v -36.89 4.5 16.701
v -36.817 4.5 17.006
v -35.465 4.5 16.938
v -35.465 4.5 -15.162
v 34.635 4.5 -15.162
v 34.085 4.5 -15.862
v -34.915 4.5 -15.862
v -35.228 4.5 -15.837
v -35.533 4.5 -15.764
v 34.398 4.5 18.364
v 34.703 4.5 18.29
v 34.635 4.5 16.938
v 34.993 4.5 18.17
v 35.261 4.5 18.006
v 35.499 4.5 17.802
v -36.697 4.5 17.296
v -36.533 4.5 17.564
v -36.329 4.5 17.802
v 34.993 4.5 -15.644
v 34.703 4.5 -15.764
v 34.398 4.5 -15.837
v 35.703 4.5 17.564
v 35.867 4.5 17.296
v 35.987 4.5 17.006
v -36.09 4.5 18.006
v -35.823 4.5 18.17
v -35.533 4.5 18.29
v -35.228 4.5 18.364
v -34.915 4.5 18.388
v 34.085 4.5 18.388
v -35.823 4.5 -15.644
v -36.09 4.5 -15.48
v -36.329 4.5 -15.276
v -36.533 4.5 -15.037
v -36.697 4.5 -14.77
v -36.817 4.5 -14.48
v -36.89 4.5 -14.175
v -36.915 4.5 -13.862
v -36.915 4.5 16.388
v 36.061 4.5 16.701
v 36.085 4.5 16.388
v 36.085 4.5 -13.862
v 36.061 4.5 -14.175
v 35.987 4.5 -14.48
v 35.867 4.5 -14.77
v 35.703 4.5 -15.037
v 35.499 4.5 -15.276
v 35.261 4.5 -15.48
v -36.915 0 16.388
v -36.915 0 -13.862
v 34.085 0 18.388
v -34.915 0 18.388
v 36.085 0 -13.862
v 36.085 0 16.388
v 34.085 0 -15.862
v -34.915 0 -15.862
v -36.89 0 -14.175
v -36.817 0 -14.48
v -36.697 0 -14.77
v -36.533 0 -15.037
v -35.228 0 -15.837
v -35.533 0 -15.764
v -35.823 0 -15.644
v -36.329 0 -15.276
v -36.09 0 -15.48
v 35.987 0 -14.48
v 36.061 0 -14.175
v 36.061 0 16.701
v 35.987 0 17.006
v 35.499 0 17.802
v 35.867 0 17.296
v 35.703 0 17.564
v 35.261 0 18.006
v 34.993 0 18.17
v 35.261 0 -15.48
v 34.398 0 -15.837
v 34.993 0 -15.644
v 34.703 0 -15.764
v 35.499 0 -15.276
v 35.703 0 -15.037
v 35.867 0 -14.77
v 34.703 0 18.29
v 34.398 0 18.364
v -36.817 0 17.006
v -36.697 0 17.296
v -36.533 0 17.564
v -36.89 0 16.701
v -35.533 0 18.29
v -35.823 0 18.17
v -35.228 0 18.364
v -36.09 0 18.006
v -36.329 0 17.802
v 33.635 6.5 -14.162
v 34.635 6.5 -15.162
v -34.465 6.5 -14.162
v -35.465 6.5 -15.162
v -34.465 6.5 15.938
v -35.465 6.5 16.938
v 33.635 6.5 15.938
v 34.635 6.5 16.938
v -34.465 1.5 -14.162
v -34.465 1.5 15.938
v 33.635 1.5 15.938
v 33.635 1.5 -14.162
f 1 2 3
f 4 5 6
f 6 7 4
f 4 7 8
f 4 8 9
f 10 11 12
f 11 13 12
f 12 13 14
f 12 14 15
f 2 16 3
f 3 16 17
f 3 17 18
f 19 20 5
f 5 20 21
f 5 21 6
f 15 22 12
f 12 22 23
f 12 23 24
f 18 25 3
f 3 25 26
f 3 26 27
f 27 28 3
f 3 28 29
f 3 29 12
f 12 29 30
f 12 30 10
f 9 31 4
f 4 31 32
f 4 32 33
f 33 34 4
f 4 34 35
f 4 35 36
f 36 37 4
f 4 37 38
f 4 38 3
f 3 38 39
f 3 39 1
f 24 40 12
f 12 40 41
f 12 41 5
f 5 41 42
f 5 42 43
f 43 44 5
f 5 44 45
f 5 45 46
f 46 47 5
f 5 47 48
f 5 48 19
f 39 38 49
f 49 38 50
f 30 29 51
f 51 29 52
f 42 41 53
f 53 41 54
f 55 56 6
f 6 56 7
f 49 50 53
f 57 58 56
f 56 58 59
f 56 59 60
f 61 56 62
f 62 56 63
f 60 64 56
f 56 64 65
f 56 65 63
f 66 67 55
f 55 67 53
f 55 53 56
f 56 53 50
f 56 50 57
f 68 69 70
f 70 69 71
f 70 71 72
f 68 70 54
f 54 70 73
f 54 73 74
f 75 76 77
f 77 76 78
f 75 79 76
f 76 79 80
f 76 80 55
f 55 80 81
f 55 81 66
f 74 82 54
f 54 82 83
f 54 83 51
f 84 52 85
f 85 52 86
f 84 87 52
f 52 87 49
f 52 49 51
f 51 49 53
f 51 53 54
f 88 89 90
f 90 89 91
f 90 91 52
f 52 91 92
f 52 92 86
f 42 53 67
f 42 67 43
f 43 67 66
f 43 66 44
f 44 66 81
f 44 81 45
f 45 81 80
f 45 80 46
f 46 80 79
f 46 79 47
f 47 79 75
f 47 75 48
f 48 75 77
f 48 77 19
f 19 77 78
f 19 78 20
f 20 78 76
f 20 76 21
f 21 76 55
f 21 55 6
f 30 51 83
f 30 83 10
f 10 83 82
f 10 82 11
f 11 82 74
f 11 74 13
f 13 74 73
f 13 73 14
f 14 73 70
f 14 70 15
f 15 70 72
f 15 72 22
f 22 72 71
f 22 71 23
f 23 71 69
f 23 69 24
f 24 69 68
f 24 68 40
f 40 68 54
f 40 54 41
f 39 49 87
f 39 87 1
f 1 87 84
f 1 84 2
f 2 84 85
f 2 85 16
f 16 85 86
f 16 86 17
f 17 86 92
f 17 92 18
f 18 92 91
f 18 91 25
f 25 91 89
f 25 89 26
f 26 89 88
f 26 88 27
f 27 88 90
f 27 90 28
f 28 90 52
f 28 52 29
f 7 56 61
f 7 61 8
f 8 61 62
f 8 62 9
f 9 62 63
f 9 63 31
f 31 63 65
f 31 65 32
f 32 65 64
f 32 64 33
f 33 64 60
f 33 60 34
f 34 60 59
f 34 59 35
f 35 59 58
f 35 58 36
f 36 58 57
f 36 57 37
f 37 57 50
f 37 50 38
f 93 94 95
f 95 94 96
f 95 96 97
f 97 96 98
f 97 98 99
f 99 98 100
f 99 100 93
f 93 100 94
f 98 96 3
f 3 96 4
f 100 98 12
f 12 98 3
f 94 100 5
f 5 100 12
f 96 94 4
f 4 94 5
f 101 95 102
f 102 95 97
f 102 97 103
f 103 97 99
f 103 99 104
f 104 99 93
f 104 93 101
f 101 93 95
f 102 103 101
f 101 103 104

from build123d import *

# Parameters (mm, degrees)
SKETCH1_W           = 73
SKETCH1_H           = 34.25
BOSS_EXTRUDE1_DEPTH = 4.5
FILLET1_R           = 2
SKETCH2_W           = 70.1
SKETCH2_H           = 32.1
SKETCH2_W_2         = 68.1
SKETCH2_H_2         = 30.1
BOSS_EXTRUDE2_DEPTH = 2
SKETCH3_W           = 68.1
SKETCH3_H           = 30.1
CUT_EXTRUDE1_DEPTH  = 3


with BuildPart() as part:
    # Sketch1 → Boss-Extrude1 (new body)
    with BuildSketch(Plane(origin=(0, 0, 0), x_dir=(1, 0, 0), z_dir=(0, 1, 0))):
        with Locations((-0.414772727, -1.263257576)):
            Rectangle(SKETCH1_W, SKETCH1_H)
    extrude(amount=BOSS_EXTRUDE1_DEPTH)

    # Fillet1
    fillet1_edges = [part.edges().sort_by_distance(p)[0] for p in [
        (-36.914772727, 2.25, -15.861742424),
        (36.085227273, 2.25, -15.861742424),
        (36.085227273, 2.25, 18.388257576),
        (-36.914772727, 2.25, 18.388257576),
    ]]
    fillet(fillet1_edges, radius=FILLET1_R)

    # Sketch2 → Boss-Extrude2 (add)
    with BuildSketch(Plane(origin=(0, 4.5, 0), x_dir=(1, 0, 0), z_dir=(0, 1, 0))):
        with Locations((-0.414772727, -0.888257576)):
            Rectangle(SKETCH2_W, SKETCH2_H)
        with Locations((-0.414772727, -0.888257576)):
            Rectangle(SKETCH2_W_2, SKETCH2_H_2, mode=Mode.SUBTRACT)
    extrude(amount=BOSS_EXTRUDE2_DEPTH)

    # Sketch3 → Cut-Extrude1 (cut)
    with BuildSketch(Plane(origin=(0, 4.5, 0), x_dir=(1, 0, 0), z_dir=(0, 1, 0))):
        with Locations((-0.414772727, -0.888257576)):
            Rectangle(SKETCH3_W, SKETCH3_H)
    extrude(amount=-CUT_EXTRUDE1_DEPTH, mode=Mode.SUBTRACT)


solid = part.part
